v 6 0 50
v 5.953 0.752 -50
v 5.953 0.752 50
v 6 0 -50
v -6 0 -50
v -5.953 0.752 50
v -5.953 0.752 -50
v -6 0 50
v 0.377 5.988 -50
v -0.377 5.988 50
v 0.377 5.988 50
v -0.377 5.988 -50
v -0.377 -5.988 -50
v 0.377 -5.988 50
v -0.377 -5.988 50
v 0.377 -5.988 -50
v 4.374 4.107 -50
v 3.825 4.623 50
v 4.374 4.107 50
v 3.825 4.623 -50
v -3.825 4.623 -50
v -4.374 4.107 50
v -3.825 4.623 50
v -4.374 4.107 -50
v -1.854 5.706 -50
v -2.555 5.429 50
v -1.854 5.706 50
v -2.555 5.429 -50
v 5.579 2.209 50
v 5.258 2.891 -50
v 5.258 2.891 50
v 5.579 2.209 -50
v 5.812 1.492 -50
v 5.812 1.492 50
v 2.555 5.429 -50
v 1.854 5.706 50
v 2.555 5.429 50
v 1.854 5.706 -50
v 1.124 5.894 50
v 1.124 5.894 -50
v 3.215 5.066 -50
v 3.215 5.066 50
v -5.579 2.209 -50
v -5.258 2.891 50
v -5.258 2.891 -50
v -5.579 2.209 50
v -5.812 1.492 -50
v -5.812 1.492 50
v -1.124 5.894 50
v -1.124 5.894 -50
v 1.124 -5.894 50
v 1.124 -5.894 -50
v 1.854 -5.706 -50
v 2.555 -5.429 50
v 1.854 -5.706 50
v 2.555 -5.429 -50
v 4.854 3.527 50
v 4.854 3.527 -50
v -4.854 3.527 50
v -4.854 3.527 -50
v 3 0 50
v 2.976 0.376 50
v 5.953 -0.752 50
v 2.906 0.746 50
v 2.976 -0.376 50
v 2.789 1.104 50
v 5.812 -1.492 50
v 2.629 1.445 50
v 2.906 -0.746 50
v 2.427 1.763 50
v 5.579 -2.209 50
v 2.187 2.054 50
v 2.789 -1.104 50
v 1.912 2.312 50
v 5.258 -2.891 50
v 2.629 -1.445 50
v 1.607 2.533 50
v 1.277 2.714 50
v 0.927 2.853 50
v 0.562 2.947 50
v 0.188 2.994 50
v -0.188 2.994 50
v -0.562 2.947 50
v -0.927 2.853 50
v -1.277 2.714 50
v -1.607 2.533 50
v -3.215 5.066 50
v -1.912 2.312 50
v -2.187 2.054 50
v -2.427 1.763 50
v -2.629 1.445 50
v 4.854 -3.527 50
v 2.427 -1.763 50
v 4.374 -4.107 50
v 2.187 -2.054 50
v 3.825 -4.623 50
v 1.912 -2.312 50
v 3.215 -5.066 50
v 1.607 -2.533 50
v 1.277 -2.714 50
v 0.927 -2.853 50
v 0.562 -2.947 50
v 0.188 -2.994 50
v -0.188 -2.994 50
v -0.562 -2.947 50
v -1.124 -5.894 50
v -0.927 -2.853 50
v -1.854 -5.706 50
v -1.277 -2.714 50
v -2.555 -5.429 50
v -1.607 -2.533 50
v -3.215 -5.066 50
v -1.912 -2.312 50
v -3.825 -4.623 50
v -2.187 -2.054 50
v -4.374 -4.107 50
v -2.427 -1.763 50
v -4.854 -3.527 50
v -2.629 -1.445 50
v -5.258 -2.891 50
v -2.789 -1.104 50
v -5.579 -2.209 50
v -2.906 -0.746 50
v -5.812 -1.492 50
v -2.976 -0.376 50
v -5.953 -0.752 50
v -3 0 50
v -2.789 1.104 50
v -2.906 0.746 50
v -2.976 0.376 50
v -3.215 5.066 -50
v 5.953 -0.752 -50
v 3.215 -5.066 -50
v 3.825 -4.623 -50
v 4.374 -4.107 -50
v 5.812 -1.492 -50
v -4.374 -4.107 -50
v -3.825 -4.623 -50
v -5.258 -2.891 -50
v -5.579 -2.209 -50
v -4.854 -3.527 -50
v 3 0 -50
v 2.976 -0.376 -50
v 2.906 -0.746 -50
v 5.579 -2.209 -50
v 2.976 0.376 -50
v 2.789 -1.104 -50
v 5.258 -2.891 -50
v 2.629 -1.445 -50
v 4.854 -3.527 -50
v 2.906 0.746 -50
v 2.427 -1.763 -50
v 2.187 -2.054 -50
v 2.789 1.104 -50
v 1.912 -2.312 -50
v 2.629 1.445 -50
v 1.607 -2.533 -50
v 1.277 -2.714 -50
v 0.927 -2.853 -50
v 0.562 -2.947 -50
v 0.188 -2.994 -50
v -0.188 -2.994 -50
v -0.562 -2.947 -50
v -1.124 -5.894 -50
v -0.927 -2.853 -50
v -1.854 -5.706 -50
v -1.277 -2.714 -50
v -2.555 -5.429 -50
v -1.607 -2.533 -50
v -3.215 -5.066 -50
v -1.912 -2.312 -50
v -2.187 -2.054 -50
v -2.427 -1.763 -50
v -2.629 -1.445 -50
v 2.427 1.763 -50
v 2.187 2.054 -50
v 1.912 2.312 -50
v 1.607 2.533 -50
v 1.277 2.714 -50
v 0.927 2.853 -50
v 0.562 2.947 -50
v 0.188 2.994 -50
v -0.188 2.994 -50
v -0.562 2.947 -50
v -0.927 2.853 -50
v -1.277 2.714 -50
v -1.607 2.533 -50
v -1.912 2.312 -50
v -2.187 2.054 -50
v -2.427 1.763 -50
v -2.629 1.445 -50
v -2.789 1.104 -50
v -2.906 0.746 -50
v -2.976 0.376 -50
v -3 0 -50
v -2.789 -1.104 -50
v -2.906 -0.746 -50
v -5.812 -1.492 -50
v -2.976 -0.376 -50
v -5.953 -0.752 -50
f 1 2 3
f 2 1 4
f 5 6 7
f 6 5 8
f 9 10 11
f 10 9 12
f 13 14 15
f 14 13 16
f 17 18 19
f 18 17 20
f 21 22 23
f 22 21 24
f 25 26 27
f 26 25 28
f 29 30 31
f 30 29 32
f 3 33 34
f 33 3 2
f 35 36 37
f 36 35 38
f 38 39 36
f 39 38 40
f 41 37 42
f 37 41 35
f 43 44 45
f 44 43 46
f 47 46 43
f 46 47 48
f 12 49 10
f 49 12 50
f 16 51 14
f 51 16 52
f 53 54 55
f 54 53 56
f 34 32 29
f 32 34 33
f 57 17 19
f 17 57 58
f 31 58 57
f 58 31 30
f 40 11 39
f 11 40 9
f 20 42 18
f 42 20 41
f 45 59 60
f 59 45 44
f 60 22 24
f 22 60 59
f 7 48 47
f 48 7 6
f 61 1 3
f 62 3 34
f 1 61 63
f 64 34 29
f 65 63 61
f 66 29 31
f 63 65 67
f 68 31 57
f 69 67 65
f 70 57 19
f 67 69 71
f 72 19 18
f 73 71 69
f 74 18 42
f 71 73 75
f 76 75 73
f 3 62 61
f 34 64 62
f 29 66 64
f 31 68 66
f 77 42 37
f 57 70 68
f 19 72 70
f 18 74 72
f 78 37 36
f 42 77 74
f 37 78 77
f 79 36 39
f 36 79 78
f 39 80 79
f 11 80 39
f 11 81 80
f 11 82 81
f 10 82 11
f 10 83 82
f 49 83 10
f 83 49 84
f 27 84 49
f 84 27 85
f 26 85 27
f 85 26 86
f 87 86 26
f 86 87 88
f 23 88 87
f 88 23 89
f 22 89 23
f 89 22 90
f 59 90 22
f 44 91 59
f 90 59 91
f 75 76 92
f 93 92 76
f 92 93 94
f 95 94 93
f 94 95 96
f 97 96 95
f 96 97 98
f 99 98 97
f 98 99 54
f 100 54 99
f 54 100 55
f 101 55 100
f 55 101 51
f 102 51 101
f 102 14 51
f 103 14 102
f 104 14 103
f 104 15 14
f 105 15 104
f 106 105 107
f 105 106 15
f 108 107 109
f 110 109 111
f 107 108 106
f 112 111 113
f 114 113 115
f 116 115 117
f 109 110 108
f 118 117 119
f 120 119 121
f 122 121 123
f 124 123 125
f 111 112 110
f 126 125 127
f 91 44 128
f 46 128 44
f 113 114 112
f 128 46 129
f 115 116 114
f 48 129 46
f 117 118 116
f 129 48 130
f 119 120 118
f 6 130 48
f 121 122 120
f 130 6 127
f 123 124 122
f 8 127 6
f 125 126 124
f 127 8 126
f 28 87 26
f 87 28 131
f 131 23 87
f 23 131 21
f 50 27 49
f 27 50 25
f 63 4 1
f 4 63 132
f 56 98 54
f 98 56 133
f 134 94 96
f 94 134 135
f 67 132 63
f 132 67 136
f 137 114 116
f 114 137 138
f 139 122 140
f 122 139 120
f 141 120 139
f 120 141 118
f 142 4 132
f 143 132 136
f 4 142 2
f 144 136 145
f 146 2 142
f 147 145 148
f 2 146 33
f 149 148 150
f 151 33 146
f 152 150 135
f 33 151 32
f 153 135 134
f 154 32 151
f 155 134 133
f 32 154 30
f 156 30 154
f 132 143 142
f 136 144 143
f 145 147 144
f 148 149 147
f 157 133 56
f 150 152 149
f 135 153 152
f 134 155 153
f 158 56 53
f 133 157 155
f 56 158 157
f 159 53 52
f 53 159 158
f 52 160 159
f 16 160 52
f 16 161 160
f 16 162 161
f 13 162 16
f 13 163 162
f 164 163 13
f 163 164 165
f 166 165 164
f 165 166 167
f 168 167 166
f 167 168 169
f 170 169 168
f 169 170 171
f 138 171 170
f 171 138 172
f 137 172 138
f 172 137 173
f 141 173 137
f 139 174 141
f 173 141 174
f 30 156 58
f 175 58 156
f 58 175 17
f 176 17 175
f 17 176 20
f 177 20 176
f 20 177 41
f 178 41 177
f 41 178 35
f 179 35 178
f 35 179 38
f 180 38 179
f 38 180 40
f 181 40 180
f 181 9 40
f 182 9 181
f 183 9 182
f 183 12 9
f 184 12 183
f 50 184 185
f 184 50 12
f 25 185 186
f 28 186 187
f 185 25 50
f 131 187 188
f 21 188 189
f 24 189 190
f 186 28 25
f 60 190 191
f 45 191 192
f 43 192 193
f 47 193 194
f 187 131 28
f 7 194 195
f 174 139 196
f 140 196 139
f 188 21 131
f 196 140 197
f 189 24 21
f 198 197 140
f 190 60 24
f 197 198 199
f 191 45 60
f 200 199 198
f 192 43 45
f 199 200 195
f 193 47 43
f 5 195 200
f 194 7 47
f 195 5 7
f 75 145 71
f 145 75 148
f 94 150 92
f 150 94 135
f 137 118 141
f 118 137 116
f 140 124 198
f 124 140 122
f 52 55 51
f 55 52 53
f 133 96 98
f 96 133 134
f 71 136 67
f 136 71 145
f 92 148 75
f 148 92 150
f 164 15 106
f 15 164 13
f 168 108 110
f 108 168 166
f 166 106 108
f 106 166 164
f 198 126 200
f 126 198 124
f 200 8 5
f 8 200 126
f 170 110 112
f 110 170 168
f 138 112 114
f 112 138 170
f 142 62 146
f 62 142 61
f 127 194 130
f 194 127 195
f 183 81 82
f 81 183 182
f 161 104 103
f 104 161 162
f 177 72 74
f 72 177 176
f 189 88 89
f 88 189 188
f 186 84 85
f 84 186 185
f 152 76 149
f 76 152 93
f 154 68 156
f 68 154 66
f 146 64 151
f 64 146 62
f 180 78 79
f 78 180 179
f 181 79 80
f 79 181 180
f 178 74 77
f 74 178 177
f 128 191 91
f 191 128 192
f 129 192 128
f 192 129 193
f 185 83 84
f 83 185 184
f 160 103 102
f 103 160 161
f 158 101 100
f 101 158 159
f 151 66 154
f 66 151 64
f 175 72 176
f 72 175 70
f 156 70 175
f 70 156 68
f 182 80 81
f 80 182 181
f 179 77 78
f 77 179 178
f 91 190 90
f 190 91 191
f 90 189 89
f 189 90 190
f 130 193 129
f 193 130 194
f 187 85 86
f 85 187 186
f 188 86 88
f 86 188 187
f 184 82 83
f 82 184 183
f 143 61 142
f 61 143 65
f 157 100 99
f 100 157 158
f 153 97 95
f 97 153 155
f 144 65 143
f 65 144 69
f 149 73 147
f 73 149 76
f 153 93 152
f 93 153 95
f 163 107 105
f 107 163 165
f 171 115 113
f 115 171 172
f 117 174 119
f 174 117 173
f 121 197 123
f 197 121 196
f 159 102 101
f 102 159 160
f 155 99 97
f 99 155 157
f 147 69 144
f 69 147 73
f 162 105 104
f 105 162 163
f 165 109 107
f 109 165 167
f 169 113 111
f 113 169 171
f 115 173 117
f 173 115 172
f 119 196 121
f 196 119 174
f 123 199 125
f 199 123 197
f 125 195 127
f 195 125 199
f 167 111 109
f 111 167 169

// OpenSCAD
$fn = 50;


difference() {
	union() {
		translate(v = [0, 0, -50.0000000000]) {
			cylinder(h = 100, r = 6.0000000000);
		}
	}
	union() {
		translate(v = [0, 0, -100.0000000000]) {
			cylinder(h = 200, r = 3);
		}
	}
}
